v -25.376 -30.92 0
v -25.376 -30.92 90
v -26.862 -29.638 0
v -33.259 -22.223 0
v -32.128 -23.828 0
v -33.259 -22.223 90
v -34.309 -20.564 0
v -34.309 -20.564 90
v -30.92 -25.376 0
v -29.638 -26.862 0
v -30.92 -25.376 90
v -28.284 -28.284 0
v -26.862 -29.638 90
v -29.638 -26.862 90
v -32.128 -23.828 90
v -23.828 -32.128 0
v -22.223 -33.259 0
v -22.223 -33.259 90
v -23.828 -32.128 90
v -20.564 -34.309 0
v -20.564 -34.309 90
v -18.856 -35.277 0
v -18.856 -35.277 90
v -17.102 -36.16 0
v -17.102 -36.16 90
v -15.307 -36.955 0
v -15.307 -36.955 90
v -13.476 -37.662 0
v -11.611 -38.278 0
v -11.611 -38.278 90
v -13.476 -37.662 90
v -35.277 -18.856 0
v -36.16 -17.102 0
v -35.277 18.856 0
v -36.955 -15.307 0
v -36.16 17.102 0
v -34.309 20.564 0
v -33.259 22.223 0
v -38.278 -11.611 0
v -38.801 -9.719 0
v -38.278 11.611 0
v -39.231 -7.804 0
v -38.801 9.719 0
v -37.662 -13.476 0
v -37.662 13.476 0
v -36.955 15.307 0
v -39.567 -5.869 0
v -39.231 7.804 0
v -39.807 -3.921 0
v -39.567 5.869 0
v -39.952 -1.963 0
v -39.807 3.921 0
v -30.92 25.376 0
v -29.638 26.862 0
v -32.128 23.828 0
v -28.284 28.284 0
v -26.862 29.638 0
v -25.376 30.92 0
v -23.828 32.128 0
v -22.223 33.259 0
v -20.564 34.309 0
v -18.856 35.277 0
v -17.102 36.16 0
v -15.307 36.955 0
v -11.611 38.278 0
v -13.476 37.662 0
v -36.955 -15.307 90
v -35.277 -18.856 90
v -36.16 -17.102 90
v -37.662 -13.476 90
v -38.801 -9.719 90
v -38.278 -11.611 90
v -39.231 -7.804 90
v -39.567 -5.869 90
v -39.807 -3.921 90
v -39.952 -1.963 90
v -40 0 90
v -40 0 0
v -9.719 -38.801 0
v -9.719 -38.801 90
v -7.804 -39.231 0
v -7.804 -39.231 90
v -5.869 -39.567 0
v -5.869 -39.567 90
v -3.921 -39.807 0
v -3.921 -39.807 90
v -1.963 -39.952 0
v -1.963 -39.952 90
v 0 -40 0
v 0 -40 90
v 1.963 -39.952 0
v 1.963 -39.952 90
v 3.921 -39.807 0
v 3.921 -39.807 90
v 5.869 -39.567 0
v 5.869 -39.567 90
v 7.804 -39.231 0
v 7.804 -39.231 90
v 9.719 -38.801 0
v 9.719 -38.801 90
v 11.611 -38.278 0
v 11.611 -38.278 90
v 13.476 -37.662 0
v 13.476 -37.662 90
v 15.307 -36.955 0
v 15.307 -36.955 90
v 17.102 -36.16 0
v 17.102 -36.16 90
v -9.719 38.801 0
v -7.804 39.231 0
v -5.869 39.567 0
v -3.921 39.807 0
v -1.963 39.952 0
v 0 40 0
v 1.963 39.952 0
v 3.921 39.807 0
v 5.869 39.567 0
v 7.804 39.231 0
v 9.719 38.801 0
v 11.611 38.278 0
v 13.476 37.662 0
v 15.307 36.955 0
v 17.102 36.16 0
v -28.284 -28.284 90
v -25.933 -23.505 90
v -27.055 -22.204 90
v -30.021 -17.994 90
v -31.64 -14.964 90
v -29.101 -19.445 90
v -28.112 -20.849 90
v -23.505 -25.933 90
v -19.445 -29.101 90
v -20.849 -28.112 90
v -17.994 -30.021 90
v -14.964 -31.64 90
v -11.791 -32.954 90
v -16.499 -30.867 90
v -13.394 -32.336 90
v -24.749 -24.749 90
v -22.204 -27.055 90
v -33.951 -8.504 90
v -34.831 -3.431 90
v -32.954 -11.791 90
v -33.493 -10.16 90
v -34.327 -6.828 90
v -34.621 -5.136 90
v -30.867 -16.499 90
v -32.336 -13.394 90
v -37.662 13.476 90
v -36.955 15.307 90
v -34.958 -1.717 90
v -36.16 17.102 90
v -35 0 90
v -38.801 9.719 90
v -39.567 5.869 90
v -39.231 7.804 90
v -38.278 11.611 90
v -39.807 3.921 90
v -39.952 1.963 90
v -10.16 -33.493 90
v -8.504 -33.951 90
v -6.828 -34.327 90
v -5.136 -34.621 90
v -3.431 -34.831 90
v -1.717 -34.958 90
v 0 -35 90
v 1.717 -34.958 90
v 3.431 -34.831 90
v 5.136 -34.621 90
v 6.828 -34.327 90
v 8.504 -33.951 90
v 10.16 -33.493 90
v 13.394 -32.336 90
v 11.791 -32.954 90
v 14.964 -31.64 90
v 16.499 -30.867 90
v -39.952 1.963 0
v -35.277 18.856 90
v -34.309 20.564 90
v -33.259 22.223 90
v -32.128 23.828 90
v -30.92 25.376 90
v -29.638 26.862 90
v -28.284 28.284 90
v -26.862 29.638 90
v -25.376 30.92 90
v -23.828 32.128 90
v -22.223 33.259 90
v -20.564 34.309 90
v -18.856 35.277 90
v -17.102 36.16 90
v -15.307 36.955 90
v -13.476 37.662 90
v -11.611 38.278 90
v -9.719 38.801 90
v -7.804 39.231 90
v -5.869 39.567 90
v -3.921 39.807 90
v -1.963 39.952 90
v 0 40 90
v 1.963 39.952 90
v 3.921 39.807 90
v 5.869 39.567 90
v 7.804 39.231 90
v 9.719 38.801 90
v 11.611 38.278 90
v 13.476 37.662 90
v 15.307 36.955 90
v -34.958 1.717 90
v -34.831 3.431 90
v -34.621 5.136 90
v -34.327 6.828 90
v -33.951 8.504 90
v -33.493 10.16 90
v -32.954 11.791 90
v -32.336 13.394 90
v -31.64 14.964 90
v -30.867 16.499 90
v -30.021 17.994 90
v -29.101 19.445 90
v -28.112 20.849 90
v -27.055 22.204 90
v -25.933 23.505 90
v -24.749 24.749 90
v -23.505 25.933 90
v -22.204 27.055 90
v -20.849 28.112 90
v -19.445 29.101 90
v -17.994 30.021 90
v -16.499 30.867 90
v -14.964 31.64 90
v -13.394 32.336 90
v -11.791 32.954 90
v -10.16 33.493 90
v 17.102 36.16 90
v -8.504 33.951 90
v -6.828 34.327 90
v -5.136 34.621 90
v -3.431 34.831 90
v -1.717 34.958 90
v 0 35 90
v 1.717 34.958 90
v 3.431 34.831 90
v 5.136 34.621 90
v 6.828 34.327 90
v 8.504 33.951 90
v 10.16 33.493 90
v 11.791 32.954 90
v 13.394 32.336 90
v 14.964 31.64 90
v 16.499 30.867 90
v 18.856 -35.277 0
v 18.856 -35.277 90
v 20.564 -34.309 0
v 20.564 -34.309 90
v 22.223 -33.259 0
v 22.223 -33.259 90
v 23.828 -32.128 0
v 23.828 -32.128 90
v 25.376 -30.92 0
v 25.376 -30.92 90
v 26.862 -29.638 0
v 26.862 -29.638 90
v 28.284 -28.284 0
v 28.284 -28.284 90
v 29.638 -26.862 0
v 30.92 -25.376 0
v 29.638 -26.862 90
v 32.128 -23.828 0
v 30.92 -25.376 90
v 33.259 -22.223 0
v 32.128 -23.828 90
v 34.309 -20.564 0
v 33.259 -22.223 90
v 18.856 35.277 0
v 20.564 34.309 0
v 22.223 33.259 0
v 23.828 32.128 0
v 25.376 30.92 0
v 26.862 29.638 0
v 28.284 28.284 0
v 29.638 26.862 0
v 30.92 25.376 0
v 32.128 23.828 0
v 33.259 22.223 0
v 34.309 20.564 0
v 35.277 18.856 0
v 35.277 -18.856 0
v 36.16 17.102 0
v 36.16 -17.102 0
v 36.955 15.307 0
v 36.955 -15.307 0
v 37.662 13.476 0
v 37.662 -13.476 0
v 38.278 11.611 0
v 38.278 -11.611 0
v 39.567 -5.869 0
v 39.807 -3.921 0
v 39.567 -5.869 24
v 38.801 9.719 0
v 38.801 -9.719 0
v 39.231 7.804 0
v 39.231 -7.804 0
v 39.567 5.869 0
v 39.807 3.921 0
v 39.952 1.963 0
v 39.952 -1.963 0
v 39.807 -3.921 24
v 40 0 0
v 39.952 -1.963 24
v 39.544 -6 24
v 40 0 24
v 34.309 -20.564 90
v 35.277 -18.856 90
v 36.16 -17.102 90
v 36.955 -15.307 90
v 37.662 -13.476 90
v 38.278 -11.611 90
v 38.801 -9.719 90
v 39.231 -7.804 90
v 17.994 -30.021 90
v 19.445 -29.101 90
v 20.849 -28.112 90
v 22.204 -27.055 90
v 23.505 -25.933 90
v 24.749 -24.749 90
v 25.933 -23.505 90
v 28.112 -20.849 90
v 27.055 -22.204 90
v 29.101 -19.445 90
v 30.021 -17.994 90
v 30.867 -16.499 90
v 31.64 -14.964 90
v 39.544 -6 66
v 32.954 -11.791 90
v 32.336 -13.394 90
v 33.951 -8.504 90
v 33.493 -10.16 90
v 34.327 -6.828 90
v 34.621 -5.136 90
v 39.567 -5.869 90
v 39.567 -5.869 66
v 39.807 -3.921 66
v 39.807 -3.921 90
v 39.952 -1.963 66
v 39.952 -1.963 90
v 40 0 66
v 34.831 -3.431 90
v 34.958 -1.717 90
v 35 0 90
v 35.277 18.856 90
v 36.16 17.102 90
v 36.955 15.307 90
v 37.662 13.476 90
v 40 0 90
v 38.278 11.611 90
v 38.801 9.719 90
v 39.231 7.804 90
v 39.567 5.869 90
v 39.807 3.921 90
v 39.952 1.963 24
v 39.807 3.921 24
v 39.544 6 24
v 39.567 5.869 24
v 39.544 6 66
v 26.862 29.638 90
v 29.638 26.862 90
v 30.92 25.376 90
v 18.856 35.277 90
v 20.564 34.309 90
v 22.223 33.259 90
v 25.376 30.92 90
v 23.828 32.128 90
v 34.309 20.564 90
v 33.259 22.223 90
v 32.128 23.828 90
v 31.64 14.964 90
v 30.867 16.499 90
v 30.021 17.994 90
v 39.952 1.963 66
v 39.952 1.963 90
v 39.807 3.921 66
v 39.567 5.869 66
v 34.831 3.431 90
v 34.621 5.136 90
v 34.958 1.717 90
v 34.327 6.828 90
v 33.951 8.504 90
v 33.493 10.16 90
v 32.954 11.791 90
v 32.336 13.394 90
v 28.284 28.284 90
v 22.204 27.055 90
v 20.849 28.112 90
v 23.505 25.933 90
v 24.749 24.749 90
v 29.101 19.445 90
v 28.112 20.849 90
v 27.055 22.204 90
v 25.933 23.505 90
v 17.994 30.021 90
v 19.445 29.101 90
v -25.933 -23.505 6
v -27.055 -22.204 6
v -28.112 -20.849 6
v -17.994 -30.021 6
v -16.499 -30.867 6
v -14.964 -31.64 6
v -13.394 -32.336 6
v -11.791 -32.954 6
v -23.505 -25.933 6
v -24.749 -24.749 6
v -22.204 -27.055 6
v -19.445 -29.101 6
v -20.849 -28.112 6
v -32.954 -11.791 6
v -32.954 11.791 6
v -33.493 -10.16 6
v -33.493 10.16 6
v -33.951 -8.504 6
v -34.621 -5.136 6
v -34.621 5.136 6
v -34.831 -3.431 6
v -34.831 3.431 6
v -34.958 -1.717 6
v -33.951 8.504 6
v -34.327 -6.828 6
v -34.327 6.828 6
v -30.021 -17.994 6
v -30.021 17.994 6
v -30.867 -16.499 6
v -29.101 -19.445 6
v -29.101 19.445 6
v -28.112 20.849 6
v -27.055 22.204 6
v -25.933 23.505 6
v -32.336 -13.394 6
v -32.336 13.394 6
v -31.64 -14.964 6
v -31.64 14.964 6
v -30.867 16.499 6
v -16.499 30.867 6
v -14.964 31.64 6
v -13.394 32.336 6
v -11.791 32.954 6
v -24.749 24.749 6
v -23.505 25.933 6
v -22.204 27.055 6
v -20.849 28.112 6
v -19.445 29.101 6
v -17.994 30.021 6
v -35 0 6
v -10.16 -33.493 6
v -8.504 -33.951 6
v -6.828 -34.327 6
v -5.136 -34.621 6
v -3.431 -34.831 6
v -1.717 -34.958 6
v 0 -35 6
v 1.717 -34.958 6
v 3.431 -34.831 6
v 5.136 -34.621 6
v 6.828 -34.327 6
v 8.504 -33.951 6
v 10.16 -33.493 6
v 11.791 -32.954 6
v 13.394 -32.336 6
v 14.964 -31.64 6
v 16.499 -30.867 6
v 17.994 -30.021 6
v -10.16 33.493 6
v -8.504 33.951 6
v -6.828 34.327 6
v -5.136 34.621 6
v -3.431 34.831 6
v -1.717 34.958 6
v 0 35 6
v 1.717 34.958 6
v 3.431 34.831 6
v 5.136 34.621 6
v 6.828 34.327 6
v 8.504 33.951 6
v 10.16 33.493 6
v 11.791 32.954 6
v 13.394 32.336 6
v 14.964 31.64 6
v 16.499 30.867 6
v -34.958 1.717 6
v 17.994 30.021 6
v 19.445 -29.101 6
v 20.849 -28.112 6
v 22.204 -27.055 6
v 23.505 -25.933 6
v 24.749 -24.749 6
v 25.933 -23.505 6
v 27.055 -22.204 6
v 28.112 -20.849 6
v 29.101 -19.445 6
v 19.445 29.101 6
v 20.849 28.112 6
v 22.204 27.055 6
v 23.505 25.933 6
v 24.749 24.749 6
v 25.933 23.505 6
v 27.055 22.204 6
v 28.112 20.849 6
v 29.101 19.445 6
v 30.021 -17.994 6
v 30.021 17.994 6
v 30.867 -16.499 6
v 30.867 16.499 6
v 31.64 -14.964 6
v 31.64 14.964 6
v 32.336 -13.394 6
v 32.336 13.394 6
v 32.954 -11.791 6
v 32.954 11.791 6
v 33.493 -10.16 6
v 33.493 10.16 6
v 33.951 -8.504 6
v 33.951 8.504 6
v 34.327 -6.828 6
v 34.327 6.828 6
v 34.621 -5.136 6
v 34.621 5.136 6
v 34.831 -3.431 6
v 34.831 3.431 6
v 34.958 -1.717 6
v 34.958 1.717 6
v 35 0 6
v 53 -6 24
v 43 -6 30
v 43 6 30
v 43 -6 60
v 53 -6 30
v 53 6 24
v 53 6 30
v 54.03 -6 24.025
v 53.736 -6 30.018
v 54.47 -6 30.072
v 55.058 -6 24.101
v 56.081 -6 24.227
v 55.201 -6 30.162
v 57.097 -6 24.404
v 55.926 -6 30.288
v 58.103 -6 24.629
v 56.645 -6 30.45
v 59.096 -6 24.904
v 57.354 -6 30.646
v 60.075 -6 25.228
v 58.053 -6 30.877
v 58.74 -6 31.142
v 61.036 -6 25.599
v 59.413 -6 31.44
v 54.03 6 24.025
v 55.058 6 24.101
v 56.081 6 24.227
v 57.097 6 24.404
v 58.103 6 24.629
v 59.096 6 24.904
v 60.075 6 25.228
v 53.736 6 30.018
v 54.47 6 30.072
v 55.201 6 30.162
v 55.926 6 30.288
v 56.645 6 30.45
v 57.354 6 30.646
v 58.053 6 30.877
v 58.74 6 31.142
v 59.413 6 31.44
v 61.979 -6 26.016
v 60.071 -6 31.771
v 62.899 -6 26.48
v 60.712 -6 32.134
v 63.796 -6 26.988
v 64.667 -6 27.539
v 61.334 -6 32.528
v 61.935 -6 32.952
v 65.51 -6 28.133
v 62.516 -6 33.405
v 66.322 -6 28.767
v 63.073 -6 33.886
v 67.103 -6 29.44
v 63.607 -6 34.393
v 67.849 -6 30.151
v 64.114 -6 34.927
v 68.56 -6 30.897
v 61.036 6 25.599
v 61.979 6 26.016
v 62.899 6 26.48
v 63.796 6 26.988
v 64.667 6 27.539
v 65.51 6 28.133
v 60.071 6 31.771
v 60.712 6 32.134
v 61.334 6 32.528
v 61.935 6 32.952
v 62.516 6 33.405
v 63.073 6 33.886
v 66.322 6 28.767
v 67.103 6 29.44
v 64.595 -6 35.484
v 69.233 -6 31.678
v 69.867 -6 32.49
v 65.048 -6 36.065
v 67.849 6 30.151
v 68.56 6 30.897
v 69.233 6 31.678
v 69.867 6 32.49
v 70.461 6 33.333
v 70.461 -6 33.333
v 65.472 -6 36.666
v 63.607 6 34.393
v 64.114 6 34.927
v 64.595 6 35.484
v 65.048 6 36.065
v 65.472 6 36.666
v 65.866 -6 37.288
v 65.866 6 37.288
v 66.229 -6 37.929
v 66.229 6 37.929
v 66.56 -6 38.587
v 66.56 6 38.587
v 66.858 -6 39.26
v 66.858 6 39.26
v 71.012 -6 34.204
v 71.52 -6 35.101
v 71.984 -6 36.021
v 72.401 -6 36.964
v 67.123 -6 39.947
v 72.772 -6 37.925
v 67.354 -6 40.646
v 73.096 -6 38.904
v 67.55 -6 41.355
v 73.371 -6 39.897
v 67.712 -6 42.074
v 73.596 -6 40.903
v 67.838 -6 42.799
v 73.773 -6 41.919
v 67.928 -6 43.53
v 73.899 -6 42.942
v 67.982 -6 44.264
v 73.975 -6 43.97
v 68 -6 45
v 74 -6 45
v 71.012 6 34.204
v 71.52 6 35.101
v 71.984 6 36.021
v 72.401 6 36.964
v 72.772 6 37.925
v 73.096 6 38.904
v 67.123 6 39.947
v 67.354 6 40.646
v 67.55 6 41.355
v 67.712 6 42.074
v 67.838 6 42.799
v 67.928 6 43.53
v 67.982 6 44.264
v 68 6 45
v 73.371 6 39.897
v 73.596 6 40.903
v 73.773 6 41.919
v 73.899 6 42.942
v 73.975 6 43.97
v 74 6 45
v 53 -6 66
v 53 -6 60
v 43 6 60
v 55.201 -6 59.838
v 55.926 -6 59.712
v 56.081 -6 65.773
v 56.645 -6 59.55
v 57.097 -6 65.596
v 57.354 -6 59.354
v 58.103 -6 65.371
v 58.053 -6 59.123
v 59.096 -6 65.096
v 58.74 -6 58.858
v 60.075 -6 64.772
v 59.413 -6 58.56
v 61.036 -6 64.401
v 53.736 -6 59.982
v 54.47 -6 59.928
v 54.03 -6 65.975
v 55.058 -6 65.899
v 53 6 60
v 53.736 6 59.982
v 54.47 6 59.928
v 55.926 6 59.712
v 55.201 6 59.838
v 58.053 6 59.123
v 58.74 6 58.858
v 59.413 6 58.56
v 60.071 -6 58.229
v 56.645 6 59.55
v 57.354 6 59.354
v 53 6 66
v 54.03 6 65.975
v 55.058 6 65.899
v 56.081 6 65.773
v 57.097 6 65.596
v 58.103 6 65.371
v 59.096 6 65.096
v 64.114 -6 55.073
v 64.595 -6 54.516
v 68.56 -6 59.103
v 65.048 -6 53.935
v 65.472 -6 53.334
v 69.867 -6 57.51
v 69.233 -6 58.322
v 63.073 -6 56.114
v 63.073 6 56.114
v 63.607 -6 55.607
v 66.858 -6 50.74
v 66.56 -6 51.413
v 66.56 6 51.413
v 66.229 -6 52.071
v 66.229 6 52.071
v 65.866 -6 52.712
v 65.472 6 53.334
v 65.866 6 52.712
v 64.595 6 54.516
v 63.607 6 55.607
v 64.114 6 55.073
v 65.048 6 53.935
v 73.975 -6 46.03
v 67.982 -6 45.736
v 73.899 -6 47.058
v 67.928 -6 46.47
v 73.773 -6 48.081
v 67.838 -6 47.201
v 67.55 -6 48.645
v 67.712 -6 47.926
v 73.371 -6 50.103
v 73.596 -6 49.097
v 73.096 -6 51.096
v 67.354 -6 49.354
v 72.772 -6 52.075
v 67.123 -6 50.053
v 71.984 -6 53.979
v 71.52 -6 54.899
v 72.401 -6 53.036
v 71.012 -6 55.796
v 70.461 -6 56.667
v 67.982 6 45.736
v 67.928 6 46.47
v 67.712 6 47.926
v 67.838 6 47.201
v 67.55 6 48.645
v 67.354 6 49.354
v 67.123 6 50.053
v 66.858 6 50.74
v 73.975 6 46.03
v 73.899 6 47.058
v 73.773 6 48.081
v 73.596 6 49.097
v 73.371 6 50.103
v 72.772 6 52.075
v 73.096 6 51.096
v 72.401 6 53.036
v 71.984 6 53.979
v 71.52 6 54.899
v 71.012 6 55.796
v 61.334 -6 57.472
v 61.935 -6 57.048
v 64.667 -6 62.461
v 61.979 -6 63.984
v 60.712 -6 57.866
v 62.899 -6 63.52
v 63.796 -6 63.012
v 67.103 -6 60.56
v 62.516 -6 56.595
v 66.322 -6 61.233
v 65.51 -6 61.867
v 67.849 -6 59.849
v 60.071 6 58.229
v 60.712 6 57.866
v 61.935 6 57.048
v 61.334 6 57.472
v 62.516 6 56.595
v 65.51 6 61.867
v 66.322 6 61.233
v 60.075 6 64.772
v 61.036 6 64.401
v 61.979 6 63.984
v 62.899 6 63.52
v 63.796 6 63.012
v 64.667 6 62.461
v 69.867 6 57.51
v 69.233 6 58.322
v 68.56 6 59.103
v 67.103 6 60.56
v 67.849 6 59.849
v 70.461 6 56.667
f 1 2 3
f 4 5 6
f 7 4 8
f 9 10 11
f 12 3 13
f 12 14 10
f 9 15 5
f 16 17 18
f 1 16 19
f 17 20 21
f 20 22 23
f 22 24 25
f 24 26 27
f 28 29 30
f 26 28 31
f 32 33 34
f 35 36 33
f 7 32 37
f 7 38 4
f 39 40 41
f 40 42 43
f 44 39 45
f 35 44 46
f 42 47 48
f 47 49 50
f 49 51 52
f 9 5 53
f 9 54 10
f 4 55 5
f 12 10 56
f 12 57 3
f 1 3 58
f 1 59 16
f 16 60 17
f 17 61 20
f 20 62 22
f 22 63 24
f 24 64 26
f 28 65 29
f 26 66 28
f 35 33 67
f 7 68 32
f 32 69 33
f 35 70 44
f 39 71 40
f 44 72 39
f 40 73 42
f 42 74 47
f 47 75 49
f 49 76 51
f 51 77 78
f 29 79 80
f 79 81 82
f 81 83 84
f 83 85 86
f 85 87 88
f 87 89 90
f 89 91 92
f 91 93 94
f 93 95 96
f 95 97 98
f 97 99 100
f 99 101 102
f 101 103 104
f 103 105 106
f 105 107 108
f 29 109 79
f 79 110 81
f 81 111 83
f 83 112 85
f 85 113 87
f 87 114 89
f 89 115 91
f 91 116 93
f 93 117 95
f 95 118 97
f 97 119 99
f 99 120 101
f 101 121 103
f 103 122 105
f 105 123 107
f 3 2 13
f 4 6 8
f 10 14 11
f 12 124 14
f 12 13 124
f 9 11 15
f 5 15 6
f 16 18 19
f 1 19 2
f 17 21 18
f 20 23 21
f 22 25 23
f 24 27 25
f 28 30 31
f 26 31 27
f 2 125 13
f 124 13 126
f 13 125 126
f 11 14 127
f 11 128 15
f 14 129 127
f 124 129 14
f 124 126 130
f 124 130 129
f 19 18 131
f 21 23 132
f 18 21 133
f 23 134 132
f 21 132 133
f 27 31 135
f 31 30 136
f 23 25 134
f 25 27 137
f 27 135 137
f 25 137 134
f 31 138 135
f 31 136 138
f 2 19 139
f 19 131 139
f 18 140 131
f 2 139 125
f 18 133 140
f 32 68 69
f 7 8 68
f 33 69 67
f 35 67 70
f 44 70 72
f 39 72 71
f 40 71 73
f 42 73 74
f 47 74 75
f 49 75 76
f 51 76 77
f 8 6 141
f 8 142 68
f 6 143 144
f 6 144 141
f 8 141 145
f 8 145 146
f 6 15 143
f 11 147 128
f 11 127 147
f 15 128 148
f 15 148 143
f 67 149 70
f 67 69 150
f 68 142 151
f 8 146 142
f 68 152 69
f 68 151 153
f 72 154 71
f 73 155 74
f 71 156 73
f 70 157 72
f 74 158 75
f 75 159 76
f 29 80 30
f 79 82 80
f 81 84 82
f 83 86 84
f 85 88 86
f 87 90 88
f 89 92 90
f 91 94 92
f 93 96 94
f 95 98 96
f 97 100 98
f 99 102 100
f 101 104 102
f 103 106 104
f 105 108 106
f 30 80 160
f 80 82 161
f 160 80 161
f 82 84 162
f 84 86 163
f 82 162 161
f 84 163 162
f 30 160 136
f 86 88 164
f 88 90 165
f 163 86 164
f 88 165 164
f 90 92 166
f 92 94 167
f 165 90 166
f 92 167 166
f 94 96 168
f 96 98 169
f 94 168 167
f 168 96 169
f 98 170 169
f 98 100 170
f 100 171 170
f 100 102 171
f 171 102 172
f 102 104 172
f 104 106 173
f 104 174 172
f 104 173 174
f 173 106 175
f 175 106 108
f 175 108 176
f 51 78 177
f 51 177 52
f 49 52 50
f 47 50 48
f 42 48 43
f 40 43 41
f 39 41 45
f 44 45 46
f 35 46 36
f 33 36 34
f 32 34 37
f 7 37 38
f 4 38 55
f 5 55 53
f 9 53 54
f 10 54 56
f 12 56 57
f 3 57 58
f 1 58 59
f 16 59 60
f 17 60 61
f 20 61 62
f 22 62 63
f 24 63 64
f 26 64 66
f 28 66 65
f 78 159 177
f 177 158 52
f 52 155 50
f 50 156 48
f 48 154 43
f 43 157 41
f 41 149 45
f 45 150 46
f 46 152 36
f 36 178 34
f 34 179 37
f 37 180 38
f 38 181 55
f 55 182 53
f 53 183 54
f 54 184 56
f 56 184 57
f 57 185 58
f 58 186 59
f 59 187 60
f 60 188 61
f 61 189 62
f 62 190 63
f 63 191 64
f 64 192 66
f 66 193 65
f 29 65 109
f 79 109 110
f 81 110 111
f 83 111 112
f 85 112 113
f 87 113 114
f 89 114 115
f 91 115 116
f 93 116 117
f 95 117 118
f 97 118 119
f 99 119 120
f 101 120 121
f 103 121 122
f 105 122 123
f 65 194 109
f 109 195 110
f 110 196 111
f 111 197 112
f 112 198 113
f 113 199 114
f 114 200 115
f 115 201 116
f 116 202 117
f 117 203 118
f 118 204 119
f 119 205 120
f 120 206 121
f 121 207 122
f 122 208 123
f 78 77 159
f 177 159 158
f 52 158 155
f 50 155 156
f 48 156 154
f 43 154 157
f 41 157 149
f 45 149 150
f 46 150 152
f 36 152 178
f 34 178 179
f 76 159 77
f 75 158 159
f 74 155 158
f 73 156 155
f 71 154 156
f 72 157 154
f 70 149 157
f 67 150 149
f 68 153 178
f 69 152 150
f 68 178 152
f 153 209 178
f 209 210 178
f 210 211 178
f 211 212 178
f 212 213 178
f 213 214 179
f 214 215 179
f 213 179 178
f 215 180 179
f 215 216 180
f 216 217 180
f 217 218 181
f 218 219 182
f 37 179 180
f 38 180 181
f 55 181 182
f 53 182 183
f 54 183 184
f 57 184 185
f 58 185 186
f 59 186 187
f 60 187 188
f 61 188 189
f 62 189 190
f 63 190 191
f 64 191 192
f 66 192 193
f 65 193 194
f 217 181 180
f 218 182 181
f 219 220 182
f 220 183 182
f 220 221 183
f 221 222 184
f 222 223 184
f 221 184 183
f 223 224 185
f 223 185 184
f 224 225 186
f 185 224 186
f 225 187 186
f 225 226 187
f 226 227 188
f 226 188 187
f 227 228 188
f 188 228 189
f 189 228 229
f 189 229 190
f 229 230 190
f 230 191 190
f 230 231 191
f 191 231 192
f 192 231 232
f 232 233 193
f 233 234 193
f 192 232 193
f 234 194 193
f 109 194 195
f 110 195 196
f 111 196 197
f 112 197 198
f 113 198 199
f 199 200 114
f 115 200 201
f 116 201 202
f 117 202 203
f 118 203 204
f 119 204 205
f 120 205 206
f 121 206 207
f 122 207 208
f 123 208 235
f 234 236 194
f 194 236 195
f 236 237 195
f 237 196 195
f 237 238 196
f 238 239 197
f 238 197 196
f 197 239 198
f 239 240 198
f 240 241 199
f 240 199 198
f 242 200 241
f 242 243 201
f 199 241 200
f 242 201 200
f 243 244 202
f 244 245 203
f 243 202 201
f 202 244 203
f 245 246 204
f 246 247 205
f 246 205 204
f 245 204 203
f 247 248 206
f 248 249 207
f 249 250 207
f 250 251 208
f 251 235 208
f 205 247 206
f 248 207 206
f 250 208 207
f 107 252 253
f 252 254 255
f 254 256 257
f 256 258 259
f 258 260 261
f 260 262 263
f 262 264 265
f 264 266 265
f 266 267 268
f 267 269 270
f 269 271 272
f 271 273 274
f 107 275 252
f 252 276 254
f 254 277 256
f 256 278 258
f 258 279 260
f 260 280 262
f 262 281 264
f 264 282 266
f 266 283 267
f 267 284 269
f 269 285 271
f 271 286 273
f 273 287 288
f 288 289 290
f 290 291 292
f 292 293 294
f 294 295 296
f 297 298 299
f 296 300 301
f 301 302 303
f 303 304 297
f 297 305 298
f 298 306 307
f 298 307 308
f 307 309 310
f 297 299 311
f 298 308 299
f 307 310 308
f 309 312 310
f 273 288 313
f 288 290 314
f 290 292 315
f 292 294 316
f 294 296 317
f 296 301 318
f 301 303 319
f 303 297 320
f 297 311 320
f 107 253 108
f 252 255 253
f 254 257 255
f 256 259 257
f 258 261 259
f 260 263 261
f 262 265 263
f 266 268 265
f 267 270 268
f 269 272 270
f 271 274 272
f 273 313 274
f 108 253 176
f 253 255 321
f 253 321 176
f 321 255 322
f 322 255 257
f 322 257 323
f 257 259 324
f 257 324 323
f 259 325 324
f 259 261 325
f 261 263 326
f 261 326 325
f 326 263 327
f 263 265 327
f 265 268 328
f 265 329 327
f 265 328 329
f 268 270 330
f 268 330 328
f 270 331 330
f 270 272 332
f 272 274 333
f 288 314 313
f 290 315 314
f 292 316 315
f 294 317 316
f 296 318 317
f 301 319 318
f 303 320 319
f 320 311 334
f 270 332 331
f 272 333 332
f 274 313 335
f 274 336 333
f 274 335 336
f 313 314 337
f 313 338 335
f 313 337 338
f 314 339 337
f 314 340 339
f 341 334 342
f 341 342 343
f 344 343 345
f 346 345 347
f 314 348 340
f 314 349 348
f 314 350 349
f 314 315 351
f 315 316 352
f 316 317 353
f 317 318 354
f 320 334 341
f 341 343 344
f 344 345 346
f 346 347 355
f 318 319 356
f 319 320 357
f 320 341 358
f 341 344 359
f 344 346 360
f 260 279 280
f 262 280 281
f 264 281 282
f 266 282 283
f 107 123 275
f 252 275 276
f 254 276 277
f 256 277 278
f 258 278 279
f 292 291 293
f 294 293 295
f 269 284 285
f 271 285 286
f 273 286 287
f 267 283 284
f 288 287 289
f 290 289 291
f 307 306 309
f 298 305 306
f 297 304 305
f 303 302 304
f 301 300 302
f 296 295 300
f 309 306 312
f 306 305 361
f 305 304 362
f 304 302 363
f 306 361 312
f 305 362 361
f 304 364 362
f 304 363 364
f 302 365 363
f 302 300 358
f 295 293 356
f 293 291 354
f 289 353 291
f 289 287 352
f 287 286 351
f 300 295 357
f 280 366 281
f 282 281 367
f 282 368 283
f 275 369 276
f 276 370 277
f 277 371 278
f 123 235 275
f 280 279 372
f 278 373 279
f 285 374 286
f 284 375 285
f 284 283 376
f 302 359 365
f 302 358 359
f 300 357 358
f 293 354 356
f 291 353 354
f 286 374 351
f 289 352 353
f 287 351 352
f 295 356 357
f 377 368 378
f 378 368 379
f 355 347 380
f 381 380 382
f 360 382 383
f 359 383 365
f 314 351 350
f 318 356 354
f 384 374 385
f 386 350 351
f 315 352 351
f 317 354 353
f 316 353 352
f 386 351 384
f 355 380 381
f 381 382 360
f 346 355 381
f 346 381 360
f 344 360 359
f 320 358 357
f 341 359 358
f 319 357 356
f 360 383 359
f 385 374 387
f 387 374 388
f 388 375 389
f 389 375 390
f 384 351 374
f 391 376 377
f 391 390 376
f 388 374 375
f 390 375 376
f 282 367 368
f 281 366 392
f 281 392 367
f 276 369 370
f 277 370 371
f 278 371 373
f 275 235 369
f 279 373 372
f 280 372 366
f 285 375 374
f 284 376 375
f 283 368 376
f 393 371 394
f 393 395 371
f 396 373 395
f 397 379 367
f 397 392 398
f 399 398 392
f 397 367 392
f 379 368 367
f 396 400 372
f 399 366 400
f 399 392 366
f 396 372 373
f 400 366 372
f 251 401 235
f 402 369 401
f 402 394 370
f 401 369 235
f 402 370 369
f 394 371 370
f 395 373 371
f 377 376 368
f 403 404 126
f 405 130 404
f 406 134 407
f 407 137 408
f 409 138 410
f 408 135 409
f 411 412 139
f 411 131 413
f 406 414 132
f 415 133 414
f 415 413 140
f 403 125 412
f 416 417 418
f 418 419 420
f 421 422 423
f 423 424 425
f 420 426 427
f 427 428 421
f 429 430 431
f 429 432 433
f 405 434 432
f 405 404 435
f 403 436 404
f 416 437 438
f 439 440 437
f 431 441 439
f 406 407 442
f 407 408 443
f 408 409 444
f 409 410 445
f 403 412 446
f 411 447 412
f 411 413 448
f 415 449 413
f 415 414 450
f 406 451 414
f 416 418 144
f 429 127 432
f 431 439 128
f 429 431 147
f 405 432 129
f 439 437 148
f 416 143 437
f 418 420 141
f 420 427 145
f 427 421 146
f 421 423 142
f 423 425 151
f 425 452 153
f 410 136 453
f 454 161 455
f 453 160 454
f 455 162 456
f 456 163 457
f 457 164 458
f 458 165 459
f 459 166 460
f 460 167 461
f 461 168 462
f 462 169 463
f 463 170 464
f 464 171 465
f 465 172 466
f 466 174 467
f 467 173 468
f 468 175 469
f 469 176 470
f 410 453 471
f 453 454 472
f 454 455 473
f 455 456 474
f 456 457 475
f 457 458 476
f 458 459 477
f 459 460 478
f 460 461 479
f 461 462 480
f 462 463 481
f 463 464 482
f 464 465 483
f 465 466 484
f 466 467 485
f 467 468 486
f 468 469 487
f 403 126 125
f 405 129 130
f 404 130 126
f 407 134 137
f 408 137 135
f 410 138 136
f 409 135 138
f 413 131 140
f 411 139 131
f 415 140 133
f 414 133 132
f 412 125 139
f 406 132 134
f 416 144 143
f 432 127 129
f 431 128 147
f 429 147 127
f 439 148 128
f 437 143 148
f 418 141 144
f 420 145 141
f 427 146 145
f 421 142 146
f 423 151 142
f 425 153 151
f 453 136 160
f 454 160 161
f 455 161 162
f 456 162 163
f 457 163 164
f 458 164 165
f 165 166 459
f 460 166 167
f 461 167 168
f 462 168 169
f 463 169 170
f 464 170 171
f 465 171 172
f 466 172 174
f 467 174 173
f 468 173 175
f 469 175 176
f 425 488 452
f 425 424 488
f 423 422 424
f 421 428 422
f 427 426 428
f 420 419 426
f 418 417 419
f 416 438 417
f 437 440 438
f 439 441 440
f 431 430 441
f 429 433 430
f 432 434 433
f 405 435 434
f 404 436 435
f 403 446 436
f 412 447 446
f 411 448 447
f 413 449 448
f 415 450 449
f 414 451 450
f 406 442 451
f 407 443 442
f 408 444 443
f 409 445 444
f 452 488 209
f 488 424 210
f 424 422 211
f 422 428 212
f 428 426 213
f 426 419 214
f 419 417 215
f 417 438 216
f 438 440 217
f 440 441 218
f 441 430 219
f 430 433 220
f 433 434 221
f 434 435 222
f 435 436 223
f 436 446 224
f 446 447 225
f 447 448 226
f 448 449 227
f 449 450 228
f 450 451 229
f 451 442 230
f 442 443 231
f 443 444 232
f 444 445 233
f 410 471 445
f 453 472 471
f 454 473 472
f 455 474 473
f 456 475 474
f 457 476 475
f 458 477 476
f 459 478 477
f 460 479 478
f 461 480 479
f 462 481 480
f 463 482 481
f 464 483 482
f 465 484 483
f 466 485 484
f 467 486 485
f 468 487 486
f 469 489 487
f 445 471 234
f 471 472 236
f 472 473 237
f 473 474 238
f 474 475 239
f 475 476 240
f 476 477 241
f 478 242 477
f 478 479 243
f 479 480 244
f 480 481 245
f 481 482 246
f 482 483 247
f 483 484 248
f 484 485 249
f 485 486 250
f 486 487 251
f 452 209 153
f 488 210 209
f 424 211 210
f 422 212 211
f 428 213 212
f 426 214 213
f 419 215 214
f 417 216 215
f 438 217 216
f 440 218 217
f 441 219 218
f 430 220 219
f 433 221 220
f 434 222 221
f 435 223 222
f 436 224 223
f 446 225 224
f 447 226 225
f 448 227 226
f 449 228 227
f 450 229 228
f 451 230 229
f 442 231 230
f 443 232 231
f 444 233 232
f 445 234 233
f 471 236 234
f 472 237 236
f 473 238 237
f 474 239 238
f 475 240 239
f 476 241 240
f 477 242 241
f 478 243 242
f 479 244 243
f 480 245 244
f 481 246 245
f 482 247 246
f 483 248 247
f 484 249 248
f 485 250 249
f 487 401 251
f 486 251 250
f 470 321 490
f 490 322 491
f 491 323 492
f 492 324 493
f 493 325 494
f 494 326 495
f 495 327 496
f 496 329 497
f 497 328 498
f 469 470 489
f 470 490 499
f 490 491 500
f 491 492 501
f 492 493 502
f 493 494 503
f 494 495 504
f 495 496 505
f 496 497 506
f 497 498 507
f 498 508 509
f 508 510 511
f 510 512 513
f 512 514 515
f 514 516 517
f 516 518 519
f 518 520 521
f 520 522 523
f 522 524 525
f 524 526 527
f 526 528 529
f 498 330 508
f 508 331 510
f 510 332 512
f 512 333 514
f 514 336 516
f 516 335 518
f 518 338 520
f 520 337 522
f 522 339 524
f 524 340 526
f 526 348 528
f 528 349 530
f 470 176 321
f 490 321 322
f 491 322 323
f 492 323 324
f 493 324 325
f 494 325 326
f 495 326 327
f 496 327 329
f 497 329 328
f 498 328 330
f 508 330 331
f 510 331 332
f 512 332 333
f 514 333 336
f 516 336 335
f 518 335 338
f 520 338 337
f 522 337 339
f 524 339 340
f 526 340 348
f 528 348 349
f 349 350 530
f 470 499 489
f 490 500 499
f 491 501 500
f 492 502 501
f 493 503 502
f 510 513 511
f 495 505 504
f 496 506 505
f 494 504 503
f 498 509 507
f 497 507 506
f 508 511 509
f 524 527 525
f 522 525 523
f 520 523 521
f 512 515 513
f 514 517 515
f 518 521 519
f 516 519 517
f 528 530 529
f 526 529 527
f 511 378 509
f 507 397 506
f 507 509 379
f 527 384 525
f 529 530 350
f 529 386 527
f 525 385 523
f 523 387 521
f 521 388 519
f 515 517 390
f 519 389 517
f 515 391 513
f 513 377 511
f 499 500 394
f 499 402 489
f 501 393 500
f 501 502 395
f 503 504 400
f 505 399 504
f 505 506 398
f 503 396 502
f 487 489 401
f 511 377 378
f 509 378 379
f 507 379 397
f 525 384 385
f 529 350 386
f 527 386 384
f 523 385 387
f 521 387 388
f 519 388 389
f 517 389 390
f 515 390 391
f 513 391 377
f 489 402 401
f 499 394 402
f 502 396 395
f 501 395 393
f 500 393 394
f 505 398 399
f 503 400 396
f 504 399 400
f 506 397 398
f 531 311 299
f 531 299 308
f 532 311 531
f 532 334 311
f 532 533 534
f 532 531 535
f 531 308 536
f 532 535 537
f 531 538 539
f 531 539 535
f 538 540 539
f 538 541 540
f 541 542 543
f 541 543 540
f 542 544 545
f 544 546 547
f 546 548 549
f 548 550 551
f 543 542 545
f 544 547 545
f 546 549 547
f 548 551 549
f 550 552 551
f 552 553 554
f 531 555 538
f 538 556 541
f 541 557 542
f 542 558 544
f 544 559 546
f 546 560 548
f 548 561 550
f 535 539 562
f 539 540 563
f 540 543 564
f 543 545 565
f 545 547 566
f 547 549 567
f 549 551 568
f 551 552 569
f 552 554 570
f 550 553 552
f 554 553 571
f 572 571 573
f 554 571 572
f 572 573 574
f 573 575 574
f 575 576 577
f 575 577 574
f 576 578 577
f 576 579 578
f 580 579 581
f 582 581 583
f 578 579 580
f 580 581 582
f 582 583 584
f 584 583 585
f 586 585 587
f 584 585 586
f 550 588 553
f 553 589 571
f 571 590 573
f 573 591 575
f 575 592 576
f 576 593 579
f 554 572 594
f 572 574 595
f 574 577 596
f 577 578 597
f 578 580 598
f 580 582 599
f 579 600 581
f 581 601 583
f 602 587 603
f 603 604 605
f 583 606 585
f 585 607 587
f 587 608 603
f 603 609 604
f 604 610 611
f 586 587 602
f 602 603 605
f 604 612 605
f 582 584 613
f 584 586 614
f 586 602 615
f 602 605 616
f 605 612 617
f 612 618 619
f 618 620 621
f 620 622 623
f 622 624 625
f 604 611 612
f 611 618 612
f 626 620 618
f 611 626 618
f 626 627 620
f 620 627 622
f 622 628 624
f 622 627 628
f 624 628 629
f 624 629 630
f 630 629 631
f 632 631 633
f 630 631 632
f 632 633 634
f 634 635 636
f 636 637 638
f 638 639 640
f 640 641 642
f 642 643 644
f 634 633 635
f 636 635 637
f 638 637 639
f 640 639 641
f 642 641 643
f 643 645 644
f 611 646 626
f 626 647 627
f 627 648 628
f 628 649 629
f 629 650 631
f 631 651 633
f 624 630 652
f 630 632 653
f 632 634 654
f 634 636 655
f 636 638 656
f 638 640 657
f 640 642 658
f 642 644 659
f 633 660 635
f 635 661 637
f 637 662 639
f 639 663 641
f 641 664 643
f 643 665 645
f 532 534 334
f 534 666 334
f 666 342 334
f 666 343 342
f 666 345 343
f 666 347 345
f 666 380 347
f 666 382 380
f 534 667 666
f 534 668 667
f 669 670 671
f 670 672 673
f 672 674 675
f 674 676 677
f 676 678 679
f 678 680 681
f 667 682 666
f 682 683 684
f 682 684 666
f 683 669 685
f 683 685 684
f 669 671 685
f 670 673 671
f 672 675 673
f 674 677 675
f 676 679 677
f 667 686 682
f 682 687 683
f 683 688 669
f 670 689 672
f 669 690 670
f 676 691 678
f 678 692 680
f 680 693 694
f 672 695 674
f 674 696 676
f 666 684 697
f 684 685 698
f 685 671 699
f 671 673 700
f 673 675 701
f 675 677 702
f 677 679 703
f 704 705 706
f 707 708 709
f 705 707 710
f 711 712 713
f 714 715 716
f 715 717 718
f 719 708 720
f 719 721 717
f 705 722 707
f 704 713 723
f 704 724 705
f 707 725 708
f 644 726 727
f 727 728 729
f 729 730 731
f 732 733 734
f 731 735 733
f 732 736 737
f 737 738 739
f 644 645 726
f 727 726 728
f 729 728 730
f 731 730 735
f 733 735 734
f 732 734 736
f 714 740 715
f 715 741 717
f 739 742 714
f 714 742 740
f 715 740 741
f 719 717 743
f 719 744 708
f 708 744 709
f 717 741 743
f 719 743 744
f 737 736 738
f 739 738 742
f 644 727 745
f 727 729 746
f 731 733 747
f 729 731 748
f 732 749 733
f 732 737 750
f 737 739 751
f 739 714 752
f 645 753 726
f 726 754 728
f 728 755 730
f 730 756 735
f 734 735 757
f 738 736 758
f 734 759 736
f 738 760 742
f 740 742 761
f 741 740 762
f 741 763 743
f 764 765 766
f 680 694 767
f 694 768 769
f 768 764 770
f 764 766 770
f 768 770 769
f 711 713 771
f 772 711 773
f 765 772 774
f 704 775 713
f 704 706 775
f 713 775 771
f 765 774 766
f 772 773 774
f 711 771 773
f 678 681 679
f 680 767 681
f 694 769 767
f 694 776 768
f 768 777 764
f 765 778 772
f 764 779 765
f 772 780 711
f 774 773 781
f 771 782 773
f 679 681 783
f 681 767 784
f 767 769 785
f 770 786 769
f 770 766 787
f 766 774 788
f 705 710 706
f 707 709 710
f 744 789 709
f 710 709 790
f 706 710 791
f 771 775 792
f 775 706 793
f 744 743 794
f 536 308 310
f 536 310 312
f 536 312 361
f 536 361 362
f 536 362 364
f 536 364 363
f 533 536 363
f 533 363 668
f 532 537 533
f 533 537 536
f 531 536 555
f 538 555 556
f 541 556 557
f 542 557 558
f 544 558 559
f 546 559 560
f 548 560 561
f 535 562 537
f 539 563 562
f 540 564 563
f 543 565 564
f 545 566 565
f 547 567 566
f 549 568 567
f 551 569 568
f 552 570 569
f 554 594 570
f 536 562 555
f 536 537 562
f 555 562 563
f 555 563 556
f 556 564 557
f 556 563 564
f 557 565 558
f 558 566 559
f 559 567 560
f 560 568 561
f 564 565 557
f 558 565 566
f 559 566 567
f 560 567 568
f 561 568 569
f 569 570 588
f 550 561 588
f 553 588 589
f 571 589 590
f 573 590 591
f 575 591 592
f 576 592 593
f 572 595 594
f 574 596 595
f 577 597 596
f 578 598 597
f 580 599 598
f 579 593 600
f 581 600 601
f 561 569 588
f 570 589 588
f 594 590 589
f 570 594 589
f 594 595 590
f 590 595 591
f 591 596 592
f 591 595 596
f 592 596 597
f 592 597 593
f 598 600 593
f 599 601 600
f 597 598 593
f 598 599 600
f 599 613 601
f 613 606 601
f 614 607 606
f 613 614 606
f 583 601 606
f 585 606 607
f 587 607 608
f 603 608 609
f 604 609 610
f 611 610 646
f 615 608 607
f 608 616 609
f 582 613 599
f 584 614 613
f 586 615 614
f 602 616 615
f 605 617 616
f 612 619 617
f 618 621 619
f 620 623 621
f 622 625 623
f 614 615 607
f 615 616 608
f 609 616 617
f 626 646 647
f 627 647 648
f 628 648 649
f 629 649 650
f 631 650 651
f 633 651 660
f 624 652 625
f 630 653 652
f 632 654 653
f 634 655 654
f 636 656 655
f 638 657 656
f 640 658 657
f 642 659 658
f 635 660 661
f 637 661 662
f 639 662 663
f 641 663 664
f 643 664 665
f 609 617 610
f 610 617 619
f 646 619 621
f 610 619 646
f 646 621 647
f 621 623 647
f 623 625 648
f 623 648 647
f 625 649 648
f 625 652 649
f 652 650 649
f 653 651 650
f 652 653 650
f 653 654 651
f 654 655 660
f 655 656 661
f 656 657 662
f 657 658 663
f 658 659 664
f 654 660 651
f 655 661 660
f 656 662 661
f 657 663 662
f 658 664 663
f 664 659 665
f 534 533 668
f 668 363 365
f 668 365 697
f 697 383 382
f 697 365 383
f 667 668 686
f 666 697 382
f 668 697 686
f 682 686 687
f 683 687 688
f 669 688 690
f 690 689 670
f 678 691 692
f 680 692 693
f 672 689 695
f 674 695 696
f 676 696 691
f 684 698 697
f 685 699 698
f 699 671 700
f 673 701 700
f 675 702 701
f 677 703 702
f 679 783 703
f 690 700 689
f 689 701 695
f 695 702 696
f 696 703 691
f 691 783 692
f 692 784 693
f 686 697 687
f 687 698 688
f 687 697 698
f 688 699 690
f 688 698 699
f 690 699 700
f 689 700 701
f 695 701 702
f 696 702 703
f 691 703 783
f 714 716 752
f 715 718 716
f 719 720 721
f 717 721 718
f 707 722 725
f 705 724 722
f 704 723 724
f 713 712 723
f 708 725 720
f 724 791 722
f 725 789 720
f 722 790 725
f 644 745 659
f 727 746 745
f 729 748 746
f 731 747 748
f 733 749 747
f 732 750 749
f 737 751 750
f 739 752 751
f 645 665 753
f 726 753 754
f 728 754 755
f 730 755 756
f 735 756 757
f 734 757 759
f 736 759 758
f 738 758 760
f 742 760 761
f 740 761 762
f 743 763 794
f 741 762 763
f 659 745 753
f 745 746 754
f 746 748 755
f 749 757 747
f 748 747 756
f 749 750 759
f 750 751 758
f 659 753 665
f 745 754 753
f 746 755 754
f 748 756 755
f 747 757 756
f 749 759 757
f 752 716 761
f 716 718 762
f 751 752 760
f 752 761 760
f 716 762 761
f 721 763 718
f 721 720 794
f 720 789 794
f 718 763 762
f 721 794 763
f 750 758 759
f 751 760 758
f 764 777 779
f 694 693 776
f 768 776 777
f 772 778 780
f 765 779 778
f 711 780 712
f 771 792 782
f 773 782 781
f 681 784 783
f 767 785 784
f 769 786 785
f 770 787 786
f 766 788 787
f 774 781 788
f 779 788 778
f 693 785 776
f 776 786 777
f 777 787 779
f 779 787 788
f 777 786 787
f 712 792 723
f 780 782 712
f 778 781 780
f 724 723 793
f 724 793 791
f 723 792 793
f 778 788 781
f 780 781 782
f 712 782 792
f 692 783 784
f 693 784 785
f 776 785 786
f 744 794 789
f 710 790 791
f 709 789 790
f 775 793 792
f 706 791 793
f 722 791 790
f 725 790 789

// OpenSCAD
$fn = 128;

// Mug dimensions
outer_diameter = 80;
inner_diameter = 70;
mug_height     = 90;
bottom_thickness = 6;

// Handle dimensions
handle_depth = 12;
handle_center_z = mug_height / 2;

// Inner D-shaped opening: 25 mm wide × 30 mm high
inner_radius = 15;
inner_straight_length = 10;
inner_base_x = 43;
inner_center_x = inner_base_x + inner_straight_length;

// Handle wall thickness
handle_wall = 6;
outer_radius = inner_radius + handle_wall;
outer_base_x = 37;
outer_center_x = inner_center_x;

arc_steps = 64;

function d_shape_points(base_x, center_x, center_z, radius) =
    concat(
        [[base_x, center_z + radius]],
        [
            for (i = [0 : arc_steps])
                let(a = 90 - 180 * i / arc_steps)
                [
                    center_x + radius * cos(a),
                    center_z + radius * sin(a)
                ]
        ],
        [[base_x, center_z - radius]]
    );

module mug_body() {
    difference() {
        cylinder(d = outer_diameter, h = mug_height);

        translate([0, 0, bottom_thickness])
            cylinder(
                d = inner_diameter,
                h = mug_height - bottom_thickness + 1
            );
    }
}

module handle() {
    rotate([90, 0, 0])
        linear_extrude(height = handle_depth, center = true, convexity = 10)
            difference() {
                polygon(
                    points = d_shape_points(
                        outer_base_x,
                        outer_center_x,
                        handle_center_z,
                        outer_radius
                    )
                );

                polygon(
                    points = d_shape_points(
                        inner_base_x,
                        inner_center_x,
                        handle_center_z,
                        inner_radius
                    )
                );
            }
}

union() {
    mug_body();
    handle();
}
